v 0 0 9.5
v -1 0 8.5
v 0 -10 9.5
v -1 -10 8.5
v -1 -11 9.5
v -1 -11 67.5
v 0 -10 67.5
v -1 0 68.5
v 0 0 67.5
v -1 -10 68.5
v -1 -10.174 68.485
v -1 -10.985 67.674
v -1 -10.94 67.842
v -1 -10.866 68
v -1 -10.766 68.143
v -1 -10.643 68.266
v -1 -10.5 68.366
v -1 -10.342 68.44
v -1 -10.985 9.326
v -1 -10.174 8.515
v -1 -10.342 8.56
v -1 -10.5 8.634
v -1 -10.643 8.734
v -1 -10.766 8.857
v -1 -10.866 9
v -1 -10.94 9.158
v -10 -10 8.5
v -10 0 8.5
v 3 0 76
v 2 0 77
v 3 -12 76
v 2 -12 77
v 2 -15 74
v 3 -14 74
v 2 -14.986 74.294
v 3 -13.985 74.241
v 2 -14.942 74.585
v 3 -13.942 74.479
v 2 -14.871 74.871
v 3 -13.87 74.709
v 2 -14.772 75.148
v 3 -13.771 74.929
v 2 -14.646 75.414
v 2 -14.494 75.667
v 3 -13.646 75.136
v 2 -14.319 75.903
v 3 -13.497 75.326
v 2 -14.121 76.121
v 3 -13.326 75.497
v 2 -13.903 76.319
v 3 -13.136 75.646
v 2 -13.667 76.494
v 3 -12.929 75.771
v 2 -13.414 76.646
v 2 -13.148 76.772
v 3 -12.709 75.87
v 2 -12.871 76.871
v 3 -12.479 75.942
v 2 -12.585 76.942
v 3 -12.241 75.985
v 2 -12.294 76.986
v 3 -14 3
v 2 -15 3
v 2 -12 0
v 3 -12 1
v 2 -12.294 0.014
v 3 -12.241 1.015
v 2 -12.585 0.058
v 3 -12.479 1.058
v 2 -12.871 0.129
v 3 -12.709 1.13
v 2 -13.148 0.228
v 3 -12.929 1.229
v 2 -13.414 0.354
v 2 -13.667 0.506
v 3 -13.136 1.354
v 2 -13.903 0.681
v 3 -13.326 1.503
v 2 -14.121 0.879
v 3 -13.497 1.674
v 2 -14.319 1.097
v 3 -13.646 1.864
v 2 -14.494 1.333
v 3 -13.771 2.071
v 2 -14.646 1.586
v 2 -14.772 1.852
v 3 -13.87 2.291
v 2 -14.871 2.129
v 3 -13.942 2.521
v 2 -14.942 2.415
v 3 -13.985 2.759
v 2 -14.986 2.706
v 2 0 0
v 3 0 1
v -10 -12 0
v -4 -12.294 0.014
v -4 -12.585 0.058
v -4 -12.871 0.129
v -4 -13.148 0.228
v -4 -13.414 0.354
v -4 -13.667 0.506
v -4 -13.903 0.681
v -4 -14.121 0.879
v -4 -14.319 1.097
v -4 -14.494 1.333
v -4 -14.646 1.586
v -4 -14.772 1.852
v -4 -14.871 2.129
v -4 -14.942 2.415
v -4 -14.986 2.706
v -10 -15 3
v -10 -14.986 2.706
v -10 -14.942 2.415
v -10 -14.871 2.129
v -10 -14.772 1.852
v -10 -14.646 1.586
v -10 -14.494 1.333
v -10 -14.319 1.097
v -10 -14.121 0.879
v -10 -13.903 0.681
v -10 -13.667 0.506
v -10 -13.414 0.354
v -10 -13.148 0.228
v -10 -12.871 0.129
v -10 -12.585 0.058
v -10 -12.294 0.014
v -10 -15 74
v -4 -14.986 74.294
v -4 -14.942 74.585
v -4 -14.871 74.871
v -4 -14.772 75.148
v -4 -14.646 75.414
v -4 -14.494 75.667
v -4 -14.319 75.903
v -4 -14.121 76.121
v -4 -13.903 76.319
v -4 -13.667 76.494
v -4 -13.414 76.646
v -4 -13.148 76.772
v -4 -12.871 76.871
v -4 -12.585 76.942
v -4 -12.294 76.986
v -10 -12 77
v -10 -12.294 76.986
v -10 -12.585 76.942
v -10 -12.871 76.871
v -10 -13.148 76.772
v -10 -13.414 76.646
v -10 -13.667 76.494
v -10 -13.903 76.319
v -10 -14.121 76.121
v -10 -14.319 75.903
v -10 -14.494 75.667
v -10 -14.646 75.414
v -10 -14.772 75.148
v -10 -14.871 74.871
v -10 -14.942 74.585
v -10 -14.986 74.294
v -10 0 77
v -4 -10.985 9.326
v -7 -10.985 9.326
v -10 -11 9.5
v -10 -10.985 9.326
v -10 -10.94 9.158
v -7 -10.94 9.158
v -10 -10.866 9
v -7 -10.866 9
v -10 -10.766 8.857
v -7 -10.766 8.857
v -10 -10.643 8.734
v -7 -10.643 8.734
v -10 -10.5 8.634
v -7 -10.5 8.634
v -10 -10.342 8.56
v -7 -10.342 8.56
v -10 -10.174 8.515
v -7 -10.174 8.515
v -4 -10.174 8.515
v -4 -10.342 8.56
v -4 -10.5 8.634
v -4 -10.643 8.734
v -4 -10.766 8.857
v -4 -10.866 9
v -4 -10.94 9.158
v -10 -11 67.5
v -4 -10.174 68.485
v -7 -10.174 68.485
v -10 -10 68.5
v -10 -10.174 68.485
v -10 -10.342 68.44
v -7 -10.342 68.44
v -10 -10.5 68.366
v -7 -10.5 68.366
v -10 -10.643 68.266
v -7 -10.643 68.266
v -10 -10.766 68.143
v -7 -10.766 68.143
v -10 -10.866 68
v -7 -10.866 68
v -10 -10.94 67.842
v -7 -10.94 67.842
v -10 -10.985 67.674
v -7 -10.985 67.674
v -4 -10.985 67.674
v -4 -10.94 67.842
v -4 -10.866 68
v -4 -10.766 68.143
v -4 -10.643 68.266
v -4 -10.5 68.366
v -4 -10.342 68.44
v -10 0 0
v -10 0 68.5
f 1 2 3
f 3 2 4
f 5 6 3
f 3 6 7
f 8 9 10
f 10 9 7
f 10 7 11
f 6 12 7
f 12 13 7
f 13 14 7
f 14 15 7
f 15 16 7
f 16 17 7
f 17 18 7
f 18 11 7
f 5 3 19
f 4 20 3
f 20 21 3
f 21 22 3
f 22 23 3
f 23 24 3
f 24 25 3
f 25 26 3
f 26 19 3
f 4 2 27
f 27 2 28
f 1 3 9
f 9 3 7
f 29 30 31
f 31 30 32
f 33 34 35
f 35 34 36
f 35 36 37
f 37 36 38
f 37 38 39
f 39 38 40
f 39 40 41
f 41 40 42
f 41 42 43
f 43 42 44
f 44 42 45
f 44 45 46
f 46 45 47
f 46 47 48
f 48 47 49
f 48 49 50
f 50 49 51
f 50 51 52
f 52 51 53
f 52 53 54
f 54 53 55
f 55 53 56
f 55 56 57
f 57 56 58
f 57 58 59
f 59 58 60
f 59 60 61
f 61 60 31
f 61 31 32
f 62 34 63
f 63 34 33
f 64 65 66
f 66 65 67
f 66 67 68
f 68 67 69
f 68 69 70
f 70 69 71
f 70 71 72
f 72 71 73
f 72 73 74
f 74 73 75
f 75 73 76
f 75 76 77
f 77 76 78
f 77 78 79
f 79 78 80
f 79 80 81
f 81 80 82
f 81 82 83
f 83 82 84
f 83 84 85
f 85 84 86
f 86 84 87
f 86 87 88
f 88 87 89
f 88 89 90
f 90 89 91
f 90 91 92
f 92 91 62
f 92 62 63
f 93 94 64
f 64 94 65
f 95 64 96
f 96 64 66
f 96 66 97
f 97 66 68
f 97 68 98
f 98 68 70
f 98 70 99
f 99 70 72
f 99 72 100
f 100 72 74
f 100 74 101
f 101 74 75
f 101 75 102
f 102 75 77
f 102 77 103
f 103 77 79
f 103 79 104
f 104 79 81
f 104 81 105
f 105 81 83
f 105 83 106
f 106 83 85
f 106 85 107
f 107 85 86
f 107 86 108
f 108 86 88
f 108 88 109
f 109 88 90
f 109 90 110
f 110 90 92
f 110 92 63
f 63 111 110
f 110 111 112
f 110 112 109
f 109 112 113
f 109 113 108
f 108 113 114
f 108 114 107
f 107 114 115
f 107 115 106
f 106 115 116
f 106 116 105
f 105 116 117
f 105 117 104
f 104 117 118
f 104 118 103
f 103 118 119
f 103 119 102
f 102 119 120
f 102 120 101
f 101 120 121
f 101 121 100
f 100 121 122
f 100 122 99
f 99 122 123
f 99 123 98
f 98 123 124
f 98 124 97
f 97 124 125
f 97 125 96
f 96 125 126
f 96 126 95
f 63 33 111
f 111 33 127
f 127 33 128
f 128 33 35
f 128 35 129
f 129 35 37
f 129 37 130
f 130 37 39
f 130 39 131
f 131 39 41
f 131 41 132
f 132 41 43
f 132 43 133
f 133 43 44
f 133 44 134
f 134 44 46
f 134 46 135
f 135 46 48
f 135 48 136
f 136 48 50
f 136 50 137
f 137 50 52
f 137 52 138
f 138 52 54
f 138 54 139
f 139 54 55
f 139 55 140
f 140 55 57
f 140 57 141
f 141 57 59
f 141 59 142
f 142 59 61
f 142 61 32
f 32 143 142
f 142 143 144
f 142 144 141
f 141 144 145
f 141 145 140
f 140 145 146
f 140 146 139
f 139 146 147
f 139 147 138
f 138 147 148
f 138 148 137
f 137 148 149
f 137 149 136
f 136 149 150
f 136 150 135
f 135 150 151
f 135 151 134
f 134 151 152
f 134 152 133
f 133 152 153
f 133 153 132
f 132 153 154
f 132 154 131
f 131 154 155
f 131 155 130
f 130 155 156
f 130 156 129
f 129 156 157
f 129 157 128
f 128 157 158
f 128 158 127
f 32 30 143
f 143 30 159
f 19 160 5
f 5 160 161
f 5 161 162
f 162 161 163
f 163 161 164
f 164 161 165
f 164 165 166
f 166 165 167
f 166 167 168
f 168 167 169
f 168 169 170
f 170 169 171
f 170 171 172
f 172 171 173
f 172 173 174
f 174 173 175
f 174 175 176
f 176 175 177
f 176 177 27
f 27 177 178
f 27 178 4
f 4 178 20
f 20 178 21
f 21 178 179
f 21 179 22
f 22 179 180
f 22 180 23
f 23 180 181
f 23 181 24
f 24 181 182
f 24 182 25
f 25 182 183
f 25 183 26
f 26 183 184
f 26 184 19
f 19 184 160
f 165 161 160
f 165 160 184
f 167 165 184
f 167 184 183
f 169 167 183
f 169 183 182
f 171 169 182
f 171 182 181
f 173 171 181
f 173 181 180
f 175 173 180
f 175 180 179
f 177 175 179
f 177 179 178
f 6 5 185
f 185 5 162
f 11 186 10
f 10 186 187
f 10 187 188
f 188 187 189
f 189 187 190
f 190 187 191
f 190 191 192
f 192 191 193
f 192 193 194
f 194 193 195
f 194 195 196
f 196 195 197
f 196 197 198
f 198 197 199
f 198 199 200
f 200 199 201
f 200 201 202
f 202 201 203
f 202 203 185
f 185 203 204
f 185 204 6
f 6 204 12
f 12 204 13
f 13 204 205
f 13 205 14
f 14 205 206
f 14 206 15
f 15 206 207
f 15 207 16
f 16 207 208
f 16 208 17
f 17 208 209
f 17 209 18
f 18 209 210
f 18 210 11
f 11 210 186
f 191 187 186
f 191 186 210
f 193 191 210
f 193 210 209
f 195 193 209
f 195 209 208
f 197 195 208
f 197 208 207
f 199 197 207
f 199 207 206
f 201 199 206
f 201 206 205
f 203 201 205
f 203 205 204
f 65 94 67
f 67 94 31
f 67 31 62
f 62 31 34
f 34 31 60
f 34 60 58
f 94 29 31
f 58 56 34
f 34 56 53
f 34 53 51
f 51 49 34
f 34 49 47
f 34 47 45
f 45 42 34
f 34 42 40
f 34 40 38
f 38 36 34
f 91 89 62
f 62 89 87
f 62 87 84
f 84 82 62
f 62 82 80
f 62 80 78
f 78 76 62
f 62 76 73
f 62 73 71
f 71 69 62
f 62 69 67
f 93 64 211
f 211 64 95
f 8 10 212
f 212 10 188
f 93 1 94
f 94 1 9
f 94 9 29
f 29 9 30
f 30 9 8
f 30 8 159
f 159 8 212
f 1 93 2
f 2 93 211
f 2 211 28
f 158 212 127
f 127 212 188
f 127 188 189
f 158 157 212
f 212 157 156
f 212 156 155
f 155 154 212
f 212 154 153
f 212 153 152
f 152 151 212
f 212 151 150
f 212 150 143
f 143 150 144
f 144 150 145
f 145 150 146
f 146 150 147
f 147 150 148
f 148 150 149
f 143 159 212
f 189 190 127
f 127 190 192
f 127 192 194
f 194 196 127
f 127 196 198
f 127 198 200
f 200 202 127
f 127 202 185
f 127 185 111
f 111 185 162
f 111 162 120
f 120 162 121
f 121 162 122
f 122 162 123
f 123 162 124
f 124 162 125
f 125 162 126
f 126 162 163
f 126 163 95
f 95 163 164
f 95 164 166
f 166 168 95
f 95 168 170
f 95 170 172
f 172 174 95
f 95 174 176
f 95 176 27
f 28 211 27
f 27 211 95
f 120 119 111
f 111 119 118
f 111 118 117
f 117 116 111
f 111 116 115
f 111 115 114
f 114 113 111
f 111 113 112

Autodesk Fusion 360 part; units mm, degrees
sketch "Sketch1" plane through (0, 0, 0) normal (1, 0, 0) x (0, 1, 0)
  line L0 (0, 0) -> (-12, 0)
  arc A0 (-15, 3) -> (-12, 0) centre (-12, 3) ccw
  line L1 (-15, 3) -> (-15, 74)
  arc A1 (-12, 77) -> (-15, 74) centre (-12, 74) ccw
  line L2 (-12, 77) -> (0, 77)
  line L3 (0, 77) -> (0, 0)
  line L4 (0, 68.5) -> (-11, 68.5)
  line L5 (-11, 68.5) -> (-11, 8.5)
  line L6 (-11, 8.5) -> (0, 8.5)
  line L7 (-11, 38.5) -> (-15, 38.5) construction
  dimension "d1" = 60
  dimension "d2" = 77
  dimension "d3" = 3
  dimension "d4" = 15
  dimension "d5" = 11
extrude "Extrude1" add sketch "Sketch1" against normal blind 10 contours L0 A0 L1 A1 L2 L3 L4 L5 L6
extrude "Extrude2" add sketch "Sketch1" along normal blind 3
fillet "Fillet1" radius 1 2 edges at (-5, -11, 68.5) (-5, -11, 8.5)
chamfer "Chamfer1" distance 1 angle 45 10 edges at (3, -6, 77) (3, -14.1213, 76.1213) (3, -15, 38.5) (3, -14.1213, 0.8787) (3, -6, 0) (0, -5, 68.5) (0, -10.7071, 68.2071) (0, -11, 38.5) (0, -10.7071, 8.7929) (0, -5, 8.5)
